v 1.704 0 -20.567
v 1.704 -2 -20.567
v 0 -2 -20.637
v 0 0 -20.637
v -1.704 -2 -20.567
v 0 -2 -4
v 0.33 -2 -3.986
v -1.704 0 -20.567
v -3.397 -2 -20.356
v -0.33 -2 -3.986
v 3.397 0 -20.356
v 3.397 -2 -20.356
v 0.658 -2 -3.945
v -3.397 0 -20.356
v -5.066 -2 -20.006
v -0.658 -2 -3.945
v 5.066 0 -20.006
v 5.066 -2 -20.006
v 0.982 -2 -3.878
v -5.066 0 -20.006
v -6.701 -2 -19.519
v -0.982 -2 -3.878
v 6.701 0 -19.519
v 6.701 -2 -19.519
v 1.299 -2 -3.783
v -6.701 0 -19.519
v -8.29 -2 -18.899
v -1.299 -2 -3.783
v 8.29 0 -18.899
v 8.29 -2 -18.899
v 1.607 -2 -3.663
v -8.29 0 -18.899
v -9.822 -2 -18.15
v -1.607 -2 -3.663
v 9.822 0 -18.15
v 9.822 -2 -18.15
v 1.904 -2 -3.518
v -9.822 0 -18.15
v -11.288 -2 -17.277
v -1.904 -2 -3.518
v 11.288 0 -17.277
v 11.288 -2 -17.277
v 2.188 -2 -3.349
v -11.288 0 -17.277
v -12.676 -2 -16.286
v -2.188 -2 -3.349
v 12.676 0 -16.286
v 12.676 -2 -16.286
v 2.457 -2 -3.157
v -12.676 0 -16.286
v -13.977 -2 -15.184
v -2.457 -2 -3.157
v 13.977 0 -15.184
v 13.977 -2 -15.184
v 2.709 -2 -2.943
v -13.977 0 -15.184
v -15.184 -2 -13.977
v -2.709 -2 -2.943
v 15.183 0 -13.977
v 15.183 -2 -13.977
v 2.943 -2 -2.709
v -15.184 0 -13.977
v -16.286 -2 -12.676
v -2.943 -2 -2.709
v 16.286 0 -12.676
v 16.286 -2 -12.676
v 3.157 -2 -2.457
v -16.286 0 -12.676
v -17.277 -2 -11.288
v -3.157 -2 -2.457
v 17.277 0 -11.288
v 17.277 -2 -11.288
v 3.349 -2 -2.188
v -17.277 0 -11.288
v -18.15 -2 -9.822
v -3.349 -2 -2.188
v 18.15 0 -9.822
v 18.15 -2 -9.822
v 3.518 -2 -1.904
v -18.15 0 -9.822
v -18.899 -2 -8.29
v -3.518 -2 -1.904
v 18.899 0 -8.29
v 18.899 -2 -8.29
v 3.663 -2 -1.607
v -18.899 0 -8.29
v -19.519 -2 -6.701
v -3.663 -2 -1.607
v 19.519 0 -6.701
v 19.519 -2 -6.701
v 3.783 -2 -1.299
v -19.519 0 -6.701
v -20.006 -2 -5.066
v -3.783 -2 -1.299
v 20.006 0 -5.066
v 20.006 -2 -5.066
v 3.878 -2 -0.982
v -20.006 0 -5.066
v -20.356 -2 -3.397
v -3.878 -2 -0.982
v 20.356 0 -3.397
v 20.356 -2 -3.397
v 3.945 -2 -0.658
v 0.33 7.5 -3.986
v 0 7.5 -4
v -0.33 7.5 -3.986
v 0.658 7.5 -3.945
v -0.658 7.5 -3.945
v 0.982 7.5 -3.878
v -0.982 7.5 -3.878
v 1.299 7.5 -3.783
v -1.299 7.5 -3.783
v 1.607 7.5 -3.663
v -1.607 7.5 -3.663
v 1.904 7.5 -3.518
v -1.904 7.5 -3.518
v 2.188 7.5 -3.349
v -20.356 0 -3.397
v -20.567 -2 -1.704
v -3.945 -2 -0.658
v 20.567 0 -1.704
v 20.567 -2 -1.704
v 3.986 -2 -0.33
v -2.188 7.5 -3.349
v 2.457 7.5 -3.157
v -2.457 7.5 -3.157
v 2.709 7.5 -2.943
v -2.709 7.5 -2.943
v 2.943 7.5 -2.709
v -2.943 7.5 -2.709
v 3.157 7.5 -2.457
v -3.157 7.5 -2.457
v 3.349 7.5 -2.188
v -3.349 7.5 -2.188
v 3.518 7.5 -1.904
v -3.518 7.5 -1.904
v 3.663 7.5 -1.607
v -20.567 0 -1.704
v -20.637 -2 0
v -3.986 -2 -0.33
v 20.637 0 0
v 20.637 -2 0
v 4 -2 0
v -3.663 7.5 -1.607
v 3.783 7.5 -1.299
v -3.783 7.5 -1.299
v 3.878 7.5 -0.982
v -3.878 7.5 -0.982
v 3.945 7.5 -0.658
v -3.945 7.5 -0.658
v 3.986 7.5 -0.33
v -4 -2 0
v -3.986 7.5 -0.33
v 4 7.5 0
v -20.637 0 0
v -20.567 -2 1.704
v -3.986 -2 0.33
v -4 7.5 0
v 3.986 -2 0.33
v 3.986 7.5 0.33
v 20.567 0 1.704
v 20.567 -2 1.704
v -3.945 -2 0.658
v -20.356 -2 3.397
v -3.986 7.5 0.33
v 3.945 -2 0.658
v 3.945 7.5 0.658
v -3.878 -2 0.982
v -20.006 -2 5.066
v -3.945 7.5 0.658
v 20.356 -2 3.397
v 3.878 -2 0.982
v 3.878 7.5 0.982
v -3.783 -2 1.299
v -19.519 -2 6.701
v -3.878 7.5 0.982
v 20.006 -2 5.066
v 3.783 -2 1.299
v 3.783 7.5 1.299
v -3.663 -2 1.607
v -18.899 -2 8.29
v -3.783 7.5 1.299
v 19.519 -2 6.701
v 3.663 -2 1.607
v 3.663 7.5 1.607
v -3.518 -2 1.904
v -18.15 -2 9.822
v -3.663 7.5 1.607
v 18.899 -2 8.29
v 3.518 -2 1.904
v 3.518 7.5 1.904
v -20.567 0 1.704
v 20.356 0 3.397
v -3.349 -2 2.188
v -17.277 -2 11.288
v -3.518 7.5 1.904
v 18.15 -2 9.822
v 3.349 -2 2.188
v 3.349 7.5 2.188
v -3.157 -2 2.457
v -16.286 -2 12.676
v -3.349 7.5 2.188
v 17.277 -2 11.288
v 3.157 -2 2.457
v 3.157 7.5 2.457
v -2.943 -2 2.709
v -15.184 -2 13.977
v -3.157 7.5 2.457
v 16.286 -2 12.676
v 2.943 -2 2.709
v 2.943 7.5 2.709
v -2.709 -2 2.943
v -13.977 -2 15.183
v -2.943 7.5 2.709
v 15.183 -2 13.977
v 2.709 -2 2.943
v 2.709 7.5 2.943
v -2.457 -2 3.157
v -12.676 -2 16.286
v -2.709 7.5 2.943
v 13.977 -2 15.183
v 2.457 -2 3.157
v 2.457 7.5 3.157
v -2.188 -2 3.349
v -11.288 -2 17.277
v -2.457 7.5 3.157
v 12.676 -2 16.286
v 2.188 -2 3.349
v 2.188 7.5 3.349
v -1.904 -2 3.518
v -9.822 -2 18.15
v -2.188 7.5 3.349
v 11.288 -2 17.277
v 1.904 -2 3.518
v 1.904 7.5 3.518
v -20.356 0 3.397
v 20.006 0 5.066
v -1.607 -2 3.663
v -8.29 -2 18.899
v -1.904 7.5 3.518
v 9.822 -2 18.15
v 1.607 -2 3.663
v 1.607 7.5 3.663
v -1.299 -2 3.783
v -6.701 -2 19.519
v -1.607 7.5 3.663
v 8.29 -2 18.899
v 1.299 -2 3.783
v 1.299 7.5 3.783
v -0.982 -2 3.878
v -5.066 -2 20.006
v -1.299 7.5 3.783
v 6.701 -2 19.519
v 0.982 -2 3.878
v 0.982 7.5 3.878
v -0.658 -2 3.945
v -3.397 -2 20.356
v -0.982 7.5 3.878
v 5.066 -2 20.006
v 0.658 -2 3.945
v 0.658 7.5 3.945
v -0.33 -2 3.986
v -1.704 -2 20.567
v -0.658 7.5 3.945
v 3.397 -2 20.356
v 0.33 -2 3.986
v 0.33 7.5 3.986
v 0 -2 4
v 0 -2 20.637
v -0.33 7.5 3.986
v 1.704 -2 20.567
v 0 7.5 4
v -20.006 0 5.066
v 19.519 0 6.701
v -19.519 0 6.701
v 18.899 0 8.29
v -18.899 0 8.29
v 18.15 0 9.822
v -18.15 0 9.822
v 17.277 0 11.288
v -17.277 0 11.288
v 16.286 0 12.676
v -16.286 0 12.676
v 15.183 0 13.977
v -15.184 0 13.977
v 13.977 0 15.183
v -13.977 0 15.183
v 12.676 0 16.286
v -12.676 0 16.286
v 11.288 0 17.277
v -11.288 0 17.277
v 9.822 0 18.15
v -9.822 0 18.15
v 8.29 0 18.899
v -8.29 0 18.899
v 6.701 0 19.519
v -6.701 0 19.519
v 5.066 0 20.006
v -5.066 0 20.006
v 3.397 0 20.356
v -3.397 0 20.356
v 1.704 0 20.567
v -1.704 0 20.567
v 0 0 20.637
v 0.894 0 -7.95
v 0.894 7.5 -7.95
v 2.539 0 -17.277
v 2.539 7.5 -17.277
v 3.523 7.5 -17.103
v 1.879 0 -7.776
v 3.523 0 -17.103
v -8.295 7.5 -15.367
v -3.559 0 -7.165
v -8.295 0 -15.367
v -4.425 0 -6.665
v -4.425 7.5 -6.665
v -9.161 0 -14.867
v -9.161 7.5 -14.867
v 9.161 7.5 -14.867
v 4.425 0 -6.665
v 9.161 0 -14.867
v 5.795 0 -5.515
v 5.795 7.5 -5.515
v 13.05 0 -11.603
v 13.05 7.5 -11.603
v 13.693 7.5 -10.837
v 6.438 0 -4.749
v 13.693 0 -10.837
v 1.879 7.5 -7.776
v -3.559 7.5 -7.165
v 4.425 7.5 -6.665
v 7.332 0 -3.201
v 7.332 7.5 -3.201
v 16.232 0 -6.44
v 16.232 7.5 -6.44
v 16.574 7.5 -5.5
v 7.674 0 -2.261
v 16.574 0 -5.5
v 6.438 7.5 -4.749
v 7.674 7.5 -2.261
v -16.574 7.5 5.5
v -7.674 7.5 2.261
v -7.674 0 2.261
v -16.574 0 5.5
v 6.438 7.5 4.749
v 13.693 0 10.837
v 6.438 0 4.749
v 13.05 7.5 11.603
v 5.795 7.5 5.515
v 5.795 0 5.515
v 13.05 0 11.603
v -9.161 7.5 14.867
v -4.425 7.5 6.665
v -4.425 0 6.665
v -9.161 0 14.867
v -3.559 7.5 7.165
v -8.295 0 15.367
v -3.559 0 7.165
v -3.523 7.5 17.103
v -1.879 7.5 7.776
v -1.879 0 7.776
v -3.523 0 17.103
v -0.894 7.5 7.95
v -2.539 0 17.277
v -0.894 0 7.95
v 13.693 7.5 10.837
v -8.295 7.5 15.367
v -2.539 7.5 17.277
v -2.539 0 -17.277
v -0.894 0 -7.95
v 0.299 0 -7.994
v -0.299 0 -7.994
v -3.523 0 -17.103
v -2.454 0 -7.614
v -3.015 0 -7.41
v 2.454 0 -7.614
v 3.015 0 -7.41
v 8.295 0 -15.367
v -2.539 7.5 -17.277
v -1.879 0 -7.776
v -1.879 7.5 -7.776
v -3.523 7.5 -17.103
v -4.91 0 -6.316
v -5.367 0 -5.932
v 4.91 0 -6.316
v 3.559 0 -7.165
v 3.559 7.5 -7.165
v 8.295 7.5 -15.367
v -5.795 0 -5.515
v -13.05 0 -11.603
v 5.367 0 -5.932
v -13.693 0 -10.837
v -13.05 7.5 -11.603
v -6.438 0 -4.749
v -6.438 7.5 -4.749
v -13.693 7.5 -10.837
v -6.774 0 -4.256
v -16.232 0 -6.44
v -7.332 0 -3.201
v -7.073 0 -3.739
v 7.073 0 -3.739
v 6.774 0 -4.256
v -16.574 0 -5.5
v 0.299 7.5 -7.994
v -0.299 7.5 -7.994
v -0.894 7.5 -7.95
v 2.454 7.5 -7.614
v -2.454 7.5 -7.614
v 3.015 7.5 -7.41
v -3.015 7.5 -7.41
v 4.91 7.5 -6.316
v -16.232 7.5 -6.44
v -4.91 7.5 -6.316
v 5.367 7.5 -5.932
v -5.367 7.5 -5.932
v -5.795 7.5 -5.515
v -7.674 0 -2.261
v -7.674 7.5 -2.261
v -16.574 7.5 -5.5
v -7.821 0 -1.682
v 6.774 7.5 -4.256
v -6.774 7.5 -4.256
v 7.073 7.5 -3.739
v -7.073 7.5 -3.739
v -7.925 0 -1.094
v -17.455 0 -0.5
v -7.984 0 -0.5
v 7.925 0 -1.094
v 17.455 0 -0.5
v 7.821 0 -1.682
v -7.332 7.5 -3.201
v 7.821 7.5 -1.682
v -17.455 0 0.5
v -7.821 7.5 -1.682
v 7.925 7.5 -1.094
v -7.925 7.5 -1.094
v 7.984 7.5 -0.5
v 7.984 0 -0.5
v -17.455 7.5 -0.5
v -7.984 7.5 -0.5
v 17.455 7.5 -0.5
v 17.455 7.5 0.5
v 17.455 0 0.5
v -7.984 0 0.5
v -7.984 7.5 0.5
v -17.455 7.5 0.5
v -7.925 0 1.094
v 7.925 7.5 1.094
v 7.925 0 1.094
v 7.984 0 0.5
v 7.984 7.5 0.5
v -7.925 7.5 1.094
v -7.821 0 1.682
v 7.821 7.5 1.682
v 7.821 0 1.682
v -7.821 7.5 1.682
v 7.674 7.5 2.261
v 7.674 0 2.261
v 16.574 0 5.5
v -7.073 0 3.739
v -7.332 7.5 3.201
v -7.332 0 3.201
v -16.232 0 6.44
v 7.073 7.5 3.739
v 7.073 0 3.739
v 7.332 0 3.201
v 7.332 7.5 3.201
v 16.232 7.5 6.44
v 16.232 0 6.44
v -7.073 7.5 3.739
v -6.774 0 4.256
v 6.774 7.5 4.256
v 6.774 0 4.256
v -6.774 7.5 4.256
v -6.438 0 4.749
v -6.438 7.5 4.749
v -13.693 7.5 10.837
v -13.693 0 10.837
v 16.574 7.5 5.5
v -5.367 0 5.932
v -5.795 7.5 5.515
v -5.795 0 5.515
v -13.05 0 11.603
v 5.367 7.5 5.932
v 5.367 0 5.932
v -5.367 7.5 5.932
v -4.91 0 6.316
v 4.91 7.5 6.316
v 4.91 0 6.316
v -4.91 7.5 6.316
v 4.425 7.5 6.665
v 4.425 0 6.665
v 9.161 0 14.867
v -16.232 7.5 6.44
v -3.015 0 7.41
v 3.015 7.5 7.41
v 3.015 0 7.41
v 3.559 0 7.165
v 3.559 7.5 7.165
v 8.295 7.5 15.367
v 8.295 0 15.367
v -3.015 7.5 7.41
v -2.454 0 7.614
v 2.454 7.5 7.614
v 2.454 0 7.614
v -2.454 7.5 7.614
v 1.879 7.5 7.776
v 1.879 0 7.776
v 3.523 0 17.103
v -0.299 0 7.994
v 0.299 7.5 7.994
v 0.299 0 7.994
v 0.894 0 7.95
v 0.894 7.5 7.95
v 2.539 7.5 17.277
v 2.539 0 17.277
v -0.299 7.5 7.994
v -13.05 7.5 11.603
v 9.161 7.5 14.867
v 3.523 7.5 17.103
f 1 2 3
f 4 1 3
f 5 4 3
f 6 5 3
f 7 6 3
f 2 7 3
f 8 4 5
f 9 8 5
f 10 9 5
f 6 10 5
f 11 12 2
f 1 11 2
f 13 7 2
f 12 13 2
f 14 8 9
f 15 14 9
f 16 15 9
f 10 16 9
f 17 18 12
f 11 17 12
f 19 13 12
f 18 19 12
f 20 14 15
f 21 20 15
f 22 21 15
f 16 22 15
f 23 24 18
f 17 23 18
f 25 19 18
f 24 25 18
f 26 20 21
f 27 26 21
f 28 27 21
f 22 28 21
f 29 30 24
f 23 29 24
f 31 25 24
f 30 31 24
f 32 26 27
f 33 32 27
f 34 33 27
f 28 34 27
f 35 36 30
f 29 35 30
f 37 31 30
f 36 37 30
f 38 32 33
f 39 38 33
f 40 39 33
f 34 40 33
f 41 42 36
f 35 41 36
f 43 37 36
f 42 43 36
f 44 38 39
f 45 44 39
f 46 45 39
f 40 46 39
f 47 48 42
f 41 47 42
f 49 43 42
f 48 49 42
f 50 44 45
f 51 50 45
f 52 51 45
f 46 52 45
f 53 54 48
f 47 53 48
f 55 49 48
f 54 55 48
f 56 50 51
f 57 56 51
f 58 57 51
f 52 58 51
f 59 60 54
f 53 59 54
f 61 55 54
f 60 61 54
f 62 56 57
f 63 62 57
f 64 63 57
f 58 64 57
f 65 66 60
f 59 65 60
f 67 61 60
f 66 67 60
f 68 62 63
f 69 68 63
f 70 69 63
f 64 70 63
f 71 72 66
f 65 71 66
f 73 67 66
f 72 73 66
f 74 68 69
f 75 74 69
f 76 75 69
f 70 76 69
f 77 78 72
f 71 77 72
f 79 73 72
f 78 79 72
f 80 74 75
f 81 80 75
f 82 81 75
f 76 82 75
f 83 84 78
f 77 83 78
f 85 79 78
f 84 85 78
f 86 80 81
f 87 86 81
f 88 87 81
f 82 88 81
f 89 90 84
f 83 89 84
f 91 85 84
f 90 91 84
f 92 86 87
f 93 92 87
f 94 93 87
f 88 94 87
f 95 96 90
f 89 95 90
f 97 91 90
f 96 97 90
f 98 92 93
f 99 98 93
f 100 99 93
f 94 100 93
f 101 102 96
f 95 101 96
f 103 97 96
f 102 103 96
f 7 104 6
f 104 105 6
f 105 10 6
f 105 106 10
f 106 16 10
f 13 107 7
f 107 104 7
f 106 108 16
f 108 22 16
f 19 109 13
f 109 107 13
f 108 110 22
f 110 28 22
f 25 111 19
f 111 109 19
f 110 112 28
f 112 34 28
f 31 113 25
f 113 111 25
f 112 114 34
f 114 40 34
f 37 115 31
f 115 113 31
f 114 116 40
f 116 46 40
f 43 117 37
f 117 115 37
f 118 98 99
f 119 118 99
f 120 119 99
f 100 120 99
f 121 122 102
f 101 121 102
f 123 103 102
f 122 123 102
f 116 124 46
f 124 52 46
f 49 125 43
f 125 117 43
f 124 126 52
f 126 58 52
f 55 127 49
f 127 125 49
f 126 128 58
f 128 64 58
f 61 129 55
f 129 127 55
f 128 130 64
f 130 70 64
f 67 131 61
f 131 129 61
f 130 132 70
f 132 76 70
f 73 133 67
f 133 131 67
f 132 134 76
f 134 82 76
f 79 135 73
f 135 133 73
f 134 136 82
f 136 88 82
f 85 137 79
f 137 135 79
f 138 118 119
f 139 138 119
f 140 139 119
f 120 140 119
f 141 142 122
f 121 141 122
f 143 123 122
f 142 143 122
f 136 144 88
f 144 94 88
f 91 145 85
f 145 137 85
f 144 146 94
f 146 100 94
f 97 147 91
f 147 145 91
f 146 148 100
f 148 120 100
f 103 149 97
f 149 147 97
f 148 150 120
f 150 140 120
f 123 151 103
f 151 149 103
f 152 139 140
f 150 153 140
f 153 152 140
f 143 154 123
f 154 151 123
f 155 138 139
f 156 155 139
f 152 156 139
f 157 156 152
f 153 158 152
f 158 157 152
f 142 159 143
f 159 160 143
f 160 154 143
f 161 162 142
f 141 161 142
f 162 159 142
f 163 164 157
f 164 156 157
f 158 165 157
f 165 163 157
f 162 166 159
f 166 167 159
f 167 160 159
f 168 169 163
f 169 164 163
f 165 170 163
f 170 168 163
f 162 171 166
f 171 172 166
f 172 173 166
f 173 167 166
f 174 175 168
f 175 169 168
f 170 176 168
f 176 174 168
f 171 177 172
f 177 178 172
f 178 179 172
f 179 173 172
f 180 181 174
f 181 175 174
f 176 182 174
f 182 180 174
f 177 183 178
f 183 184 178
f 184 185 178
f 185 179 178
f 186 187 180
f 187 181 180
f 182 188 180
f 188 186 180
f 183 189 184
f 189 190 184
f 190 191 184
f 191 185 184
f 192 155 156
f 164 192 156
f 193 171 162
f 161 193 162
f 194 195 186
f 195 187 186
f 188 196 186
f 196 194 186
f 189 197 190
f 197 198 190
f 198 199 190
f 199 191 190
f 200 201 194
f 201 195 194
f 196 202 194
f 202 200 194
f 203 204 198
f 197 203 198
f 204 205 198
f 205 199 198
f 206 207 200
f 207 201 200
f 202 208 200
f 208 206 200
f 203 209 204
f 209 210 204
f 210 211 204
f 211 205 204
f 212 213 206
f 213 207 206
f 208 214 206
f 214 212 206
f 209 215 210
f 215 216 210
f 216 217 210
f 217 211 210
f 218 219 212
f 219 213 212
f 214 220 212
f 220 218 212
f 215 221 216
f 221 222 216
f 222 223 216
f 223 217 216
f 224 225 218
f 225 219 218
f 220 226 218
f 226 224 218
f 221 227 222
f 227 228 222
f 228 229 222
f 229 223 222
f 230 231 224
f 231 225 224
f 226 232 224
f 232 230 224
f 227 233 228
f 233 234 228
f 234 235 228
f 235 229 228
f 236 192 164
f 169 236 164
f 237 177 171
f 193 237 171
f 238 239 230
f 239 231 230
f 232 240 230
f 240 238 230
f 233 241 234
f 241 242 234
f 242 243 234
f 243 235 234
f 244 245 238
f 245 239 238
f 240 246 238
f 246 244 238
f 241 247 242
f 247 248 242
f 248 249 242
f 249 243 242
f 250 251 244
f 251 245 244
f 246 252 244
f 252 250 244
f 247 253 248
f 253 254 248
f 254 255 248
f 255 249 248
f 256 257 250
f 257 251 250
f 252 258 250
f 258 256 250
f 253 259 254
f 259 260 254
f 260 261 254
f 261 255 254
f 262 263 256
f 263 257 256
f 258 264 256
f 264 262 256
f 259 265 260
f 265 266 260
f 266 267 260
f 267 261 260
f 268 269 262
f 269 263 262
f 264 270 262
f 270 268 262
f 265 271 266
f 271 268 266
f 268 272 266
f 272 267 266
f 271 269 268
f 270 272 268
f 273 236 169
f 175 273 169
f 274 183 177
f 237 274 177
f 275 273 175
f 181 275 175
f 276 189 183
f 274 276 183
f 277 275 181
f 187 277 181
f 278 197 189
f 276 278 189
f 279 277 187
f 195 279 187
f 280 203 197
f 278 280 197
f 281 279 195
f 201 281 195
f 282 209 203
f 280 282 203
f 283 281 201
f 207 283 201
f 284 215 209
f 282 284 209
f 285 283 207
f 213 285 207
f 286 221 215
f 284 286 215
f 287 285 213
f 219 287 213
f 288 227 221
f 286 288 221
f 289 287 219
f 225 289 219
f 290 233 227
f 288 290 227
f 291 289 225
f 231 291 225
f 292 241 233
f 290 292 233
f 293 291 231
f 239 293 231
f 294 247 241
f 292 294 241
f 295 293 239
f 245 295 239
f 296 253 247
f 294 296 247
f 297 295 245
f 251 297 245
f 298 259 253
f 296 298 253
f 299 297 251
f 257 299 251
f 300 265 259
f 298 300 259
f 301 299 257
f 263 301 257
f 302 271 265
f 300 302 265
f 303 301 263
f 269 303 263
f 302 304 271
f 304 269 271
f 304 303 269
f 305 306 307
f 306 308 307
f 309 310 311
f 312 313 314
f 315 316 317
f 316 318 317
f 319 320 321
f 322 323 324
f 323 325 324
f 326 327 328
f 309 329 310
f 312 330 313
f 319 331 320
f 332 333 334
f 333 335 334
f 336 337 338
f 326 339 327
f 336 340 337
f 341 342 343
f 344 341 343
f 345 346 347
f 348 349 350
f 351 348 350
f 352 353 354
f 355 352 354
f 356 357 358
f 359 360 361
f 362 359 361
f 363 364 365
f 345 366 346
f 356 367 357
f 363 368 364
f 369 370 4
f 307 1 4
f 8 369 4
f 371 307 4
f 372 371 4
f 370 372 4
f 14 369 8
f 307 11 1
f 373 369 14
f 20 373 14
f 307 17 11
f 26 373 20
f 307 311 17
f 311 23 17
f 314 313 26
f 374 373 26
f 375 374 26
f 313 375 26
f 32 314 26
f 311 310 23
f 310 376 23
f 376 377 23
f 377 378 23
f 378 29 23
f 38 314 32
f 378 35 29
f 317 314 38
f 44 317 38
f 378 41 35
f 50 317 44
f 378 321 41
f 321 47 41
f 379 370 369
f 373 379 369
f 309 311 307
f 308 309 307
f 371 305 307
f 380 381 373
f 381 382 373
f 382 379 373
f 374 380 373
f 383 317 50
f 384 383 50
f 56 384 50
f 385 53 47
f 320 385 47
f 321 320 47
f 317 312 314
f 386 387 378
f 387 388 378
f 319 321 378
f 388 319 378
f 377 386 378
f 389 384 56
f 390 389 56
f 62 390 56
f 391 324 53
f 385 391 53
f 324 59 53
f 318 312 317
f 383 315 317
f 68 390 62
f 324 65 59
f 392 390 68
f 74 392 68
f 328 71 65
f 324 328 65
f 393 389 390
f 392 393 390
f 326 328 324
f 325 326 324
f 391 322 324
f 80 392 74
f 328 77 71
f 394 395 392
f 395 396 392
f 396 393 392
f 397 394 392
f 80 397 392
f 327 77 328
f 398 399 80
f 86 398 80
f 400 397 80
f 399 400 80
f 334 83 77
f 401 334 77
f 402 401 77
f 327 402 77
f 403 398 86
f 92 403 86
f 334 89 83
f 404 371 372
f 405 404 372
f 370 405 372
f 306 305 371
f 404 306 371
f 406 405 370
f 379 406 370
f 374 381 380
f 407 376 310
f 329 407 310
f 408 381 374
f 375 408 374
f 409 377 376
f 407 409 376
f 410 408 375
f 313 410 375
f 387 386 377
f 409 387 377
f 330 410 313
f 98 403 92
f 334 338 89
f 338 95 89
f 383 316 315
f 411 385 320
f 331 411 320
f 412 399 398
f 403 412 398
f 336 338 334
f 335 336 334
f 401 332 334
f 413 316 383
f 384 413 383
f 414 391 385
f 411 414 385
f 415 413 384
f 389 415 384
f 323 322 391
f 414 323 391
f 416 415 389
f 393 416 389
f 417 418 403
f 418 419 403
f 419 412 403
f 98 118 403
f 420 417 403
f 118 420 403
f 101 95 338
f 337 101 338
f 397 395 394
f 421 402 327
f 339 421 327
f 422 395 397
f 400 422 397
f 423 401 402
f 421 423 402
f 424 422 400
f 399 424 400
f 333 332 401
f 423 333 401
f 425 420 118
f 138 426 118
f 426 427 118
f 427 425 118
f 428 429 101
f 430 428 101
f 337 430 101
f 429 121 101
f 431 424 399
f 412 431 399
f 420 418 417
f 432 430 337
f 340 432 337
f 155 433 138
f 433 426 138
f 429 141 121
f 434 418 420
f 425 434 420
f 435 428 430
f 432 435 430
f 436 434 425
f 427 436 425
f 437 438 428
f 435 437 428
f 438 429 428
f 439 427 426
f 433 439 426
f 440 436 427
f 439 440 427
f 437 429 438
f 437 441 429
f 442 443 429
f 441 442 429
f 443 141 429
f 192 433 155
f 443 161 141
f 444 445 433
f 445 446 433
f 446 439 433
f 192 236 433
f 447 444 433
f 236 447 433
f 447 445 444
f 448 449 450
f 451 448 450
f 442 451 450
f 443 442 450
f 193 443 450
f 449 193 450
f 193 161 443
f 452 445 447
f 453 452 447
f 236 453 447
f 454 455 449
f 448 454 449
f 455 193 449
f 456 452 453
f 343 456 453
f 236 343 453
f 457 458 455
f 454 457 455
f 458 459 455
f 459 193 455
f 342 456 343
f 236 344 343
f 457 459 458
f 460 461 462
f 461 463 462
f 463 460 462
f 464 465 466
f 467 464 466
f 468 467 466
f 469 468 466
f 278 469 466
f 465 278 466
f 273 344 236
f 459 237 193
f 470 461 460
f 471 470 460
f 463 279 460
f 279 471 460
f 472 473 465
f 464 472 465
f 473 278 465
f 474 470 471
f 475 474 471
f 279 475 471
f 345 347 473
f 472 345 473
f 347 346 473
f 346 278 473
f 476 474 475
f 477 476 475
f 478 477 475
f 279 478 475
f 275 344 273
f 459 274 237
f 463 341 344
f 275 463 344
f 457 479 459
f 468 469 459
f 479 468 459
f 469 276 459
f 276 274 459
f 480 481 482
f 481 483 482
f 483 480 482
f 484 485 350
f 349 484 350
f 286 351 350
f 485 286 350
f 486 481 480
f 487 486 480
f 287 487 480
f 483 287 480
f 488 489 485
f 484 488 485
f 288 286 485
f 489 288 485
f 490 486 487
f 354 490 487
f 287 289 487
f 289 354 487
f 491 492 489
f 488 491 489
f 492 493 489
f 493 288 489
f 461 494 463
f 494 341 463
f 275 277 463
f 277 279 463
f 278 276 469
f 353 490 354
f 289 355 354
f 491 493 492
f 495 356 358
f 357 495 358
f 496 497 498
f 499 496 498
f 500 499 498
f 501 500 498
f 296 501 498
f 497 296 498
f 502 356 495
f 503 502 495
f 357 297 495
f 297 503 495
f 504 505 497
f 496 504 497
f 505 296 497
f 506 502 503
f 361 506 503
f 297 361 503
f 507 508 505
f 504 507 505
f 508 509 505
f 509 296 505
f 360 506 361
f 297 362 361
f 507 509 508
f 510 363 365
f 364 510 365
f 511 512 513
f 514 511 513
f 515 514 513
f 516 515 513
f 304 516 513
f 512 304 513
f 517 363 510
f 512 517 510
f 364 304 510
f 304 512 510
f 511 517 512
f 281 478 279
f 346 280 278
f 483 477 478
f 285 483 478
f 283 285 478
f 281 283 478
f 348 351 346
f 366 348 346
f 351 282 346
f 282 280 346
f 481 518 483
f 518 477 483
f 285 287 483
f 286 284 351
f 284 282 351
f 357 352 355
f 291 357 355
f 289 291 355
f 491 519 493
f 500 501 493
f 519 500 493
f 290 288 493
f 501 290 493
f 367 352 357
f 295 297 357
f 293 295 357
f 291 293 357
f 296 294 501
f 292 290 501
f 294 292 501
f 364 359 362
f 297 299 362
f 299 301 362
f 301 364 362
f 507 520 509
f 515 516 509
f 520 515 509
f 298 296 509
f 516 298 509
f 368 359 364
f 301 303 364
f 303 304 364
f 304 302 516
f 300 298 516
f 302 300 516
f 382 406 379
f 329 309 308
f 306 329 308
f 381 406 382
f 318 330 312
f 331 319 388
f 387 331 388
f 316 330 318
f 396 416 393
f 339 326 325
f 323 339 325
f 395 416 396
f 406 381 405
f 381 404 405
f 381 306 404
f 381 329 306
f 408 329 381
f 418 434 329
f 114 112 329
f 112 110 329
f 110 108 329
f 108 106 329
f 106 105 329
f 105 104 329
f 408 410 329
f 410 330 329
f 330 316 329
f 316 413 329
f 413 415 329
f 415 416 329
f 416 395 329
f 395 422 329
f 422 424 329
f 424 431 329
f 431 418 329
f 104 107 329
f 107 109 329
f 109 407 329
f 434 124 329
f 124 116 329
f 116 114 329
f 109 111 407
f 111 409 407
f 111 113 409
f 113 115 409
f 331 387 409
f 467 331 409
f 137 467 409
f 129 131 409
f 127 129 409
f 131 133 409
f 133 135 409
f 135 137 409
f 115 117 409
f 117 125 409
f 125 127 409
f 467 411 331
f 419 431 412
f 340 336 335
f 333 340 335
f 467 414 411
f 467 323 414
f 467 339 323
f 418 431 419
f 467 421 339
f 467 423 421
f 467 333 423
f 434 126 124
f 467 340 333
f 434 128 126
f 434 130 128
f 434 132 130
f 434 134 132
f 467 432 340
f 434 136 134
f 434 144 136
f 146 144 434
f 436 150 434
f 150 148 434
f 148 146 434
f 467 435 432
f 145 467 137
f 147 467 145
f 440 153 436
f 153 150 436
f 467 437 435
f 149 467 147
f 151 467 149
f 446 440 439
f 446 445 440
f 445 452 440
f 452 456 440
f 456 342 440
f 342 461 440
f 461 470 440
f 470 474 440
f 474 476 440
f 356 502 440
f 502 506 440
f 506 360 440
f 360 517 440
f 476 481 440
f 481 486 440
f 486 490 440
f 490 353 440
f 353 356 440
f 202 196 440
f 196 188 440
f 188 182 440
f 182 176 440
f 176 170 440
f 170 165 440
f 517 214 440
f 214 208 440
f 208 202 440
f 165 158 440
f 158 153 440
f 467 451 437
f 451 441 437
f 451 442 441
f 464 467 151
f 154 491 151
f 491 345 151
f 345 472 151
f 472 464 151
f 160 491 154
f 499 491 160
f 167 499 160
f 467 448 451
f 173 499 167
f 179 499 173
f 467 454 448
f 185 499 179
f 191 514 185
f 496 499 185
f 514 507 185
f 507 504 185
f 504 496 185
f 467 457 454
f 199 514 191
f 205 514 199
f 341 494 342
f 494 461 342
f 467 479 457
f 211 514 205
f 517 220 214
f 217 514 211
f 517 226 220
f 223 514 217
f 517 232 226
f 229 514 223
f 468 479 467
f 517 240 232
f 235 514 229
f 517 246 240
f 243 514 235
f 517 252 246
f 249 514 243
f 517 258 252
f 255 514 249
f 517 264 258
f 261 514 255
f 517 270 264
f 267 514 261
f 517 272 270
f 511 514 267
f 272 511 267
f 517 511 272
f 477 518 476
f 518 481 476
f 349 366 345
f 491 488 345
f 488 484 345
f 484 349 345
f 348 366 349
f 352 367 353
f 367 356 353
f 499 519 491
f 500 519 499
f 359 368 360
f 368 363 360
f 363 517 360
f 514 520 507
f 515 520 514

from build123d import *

# Parameters (mm, degrees)
SKETCH1_R           = 8
BOSS_EXTRUDE1_DEPTH = 7.5
SKETCH2_W           = 24
SKETCH2_H           = 1
BOSS_EXTRUDE2_DEPTH = 7.5
SKETCH5_W           = 30
SKETCH5_H           = 10
SKETCH6_R           = 20.6375
BOSS_EXTRUDE3_DEPTH = 2
SKETCH7_R           = 4
CUT_EXTRUDE2_DEPTH  = 31.69304176


with BuildPart() as part:
    # Sketch1 → Boss-Extrude1 (new body)
    with BuildSketch(Plane(origin=(0, 0, 0), x_dir=(1, 0, 0), z_dir=(0, 1, 0))):
        with Locations(Location((0, 0, 0), (0, 0, 270))):
            Circle(SKETCH1_R)
    extrude(amount=BOSS_EXTRUDE1_DEPTH)

    # Sketch2 → Boss-Extrude2 (add)
    with BuildSketch(Plane.XZ):
        with Locations((17.4625, 0)):
            Rectangle(SKETCH2_W, SKETCH2_H)
        Polygon((27.514683768, -10.546614783), (4.962060869, -2.338131343), (5.304081013, -1.398438723), (27.856703912, -9.606922162), align=None)
        Polygon((22.248190601, -19.321152172), (3.863123966, -3.894249539), (4.505911575, -3.128205096), (22.89097821, -18.555107729), align=None)
        Polygon((14.298237298, -25.765273459), (2.298237298, -4.980663768), (3.164262702, -4.480663768), (15.164262702, -25.265273459), align=None)
        Polygon((4.623705558, -29.101722512), (0.456149294, -5.46633644), (1.440957047, -5.292688262), (5.608513311, -28.928074334), align=None)
        Polygon((-5.608513311, -28.928074334), (-1.440957047, -5.292688262), (-0.456149294, -5.46633644), (-4.623705558, -29.101722512), align=None)
        Polygon((-15.164262702, -25.265273459), (-3.164262702, -4.480663768), (-2.298237298, -4.980663768), (-14.298237298, -25.765273459), align=None)
        Polygon((-22.89097821, -18.555107729), (-4.505911575, -3.128205096), (-3.863123966, -3.894249539), (-22.248190601, -19.321152172), align=None)
        Polygon((-27.856703912, -9.606922162), (-5.304081013, -1.398438723), (-4.962060869, -2.338131343), (-27.514683768, -10.546614783), align=None)
        with Locations((-17.4625, 0)):
            Rectangle(SKETCH2_W, SKETCH2_H)
        Polygon((-27.514683768, 10.546614783), (-4.962060869, 2.338131343), (-5.304081013, 1.398438723), (-27.856703912, 9.606922162), align=None)
        Polygon((-22.248190601, 19.321152172), (-3.863123966, 3.894249539), (-4.505911575, 3.128205096), (-22.89097821, 18.555107729), align=None)
        Polygon((-14.298237298, 25.765273459), (-2.298237298, 4.980663768), (-3.164262702, 4.480663768), (-15.164262702, 25.265273459), align=None)
        Polygon((-4.623705558, 29.101722512), (-0.456149294, 5.46633644), (-1.440957047, 5.292688262), (-5.608513311, 28.928074334), align=None)
        Polygon((5.608513311, 28.928074334), (1.440957047, 5.292688262), (0.456149294, 5.46633644), (4.623705558, 29.101722512), align=None)
        Polygon((15.164262702, 25.265273459), (3.164262702, 4.480663768), (2.298237298, 4.980663768), (14.298237298, 25.765273459), align=None)
        Polygon((22.89097821, 18.555107729), (4.505911575, 3.128205096), (3.863123966, 3.894249539), (22.248190601, 19.321152172), align=None)
        Polygon((27.856703912, 9.606922162), (5.304081013, 1.398438723), (4.962060869, 2.338131343), (27.514683768, 10.546614783), align=None)
    extrude(amount=-BOSS_EXTRUDE2_DEPTH)

    # Sketch5 → Cut-Revolve1 (revolve, cut)
    with BuildSketch(Plane(origin=(0, 0, 0), x_dir=(0, 0, -1), z_dir=(1, 0, 0))):
        with Locations((32.4625, 4)):
            Rectangle(SKETCH5_W, SKETCH5_H)
    revolve(axis=Axis((0, 0, 0), (0, 1, 0)), mode=Mode.SUBTRACT)

    # Sketch6 → Boss-Extrude3 (add)
    with BuildSketch(Plane(origin=(0, 0, 0), x_dir=(1, 0, 0), z_dir=(0, 1, 0))):
        with Locations(Location((0, 0, 0), (0, 0, 270))):
            Circle(SKETCH6_R)
    extrude(amount=-BOSS_EXTRUDE3_DEPTH)

    # Sketch7 → Cut-Extrude2 (cut, through all)
    with BuildSketch(Plane(origin=(0, 7.5, 0), x_dir=(1, 0, 0), z_dir=(0, 1, 0))):
        with Locations(Location((0, 0, 0), (0, 0, 270))):
            Circle(SKETCH7_R)
    extrude(amount=-CUT_EXTRUDE2_DEPTH, mode=Mode.SUBTRACT)


solid = part.part
